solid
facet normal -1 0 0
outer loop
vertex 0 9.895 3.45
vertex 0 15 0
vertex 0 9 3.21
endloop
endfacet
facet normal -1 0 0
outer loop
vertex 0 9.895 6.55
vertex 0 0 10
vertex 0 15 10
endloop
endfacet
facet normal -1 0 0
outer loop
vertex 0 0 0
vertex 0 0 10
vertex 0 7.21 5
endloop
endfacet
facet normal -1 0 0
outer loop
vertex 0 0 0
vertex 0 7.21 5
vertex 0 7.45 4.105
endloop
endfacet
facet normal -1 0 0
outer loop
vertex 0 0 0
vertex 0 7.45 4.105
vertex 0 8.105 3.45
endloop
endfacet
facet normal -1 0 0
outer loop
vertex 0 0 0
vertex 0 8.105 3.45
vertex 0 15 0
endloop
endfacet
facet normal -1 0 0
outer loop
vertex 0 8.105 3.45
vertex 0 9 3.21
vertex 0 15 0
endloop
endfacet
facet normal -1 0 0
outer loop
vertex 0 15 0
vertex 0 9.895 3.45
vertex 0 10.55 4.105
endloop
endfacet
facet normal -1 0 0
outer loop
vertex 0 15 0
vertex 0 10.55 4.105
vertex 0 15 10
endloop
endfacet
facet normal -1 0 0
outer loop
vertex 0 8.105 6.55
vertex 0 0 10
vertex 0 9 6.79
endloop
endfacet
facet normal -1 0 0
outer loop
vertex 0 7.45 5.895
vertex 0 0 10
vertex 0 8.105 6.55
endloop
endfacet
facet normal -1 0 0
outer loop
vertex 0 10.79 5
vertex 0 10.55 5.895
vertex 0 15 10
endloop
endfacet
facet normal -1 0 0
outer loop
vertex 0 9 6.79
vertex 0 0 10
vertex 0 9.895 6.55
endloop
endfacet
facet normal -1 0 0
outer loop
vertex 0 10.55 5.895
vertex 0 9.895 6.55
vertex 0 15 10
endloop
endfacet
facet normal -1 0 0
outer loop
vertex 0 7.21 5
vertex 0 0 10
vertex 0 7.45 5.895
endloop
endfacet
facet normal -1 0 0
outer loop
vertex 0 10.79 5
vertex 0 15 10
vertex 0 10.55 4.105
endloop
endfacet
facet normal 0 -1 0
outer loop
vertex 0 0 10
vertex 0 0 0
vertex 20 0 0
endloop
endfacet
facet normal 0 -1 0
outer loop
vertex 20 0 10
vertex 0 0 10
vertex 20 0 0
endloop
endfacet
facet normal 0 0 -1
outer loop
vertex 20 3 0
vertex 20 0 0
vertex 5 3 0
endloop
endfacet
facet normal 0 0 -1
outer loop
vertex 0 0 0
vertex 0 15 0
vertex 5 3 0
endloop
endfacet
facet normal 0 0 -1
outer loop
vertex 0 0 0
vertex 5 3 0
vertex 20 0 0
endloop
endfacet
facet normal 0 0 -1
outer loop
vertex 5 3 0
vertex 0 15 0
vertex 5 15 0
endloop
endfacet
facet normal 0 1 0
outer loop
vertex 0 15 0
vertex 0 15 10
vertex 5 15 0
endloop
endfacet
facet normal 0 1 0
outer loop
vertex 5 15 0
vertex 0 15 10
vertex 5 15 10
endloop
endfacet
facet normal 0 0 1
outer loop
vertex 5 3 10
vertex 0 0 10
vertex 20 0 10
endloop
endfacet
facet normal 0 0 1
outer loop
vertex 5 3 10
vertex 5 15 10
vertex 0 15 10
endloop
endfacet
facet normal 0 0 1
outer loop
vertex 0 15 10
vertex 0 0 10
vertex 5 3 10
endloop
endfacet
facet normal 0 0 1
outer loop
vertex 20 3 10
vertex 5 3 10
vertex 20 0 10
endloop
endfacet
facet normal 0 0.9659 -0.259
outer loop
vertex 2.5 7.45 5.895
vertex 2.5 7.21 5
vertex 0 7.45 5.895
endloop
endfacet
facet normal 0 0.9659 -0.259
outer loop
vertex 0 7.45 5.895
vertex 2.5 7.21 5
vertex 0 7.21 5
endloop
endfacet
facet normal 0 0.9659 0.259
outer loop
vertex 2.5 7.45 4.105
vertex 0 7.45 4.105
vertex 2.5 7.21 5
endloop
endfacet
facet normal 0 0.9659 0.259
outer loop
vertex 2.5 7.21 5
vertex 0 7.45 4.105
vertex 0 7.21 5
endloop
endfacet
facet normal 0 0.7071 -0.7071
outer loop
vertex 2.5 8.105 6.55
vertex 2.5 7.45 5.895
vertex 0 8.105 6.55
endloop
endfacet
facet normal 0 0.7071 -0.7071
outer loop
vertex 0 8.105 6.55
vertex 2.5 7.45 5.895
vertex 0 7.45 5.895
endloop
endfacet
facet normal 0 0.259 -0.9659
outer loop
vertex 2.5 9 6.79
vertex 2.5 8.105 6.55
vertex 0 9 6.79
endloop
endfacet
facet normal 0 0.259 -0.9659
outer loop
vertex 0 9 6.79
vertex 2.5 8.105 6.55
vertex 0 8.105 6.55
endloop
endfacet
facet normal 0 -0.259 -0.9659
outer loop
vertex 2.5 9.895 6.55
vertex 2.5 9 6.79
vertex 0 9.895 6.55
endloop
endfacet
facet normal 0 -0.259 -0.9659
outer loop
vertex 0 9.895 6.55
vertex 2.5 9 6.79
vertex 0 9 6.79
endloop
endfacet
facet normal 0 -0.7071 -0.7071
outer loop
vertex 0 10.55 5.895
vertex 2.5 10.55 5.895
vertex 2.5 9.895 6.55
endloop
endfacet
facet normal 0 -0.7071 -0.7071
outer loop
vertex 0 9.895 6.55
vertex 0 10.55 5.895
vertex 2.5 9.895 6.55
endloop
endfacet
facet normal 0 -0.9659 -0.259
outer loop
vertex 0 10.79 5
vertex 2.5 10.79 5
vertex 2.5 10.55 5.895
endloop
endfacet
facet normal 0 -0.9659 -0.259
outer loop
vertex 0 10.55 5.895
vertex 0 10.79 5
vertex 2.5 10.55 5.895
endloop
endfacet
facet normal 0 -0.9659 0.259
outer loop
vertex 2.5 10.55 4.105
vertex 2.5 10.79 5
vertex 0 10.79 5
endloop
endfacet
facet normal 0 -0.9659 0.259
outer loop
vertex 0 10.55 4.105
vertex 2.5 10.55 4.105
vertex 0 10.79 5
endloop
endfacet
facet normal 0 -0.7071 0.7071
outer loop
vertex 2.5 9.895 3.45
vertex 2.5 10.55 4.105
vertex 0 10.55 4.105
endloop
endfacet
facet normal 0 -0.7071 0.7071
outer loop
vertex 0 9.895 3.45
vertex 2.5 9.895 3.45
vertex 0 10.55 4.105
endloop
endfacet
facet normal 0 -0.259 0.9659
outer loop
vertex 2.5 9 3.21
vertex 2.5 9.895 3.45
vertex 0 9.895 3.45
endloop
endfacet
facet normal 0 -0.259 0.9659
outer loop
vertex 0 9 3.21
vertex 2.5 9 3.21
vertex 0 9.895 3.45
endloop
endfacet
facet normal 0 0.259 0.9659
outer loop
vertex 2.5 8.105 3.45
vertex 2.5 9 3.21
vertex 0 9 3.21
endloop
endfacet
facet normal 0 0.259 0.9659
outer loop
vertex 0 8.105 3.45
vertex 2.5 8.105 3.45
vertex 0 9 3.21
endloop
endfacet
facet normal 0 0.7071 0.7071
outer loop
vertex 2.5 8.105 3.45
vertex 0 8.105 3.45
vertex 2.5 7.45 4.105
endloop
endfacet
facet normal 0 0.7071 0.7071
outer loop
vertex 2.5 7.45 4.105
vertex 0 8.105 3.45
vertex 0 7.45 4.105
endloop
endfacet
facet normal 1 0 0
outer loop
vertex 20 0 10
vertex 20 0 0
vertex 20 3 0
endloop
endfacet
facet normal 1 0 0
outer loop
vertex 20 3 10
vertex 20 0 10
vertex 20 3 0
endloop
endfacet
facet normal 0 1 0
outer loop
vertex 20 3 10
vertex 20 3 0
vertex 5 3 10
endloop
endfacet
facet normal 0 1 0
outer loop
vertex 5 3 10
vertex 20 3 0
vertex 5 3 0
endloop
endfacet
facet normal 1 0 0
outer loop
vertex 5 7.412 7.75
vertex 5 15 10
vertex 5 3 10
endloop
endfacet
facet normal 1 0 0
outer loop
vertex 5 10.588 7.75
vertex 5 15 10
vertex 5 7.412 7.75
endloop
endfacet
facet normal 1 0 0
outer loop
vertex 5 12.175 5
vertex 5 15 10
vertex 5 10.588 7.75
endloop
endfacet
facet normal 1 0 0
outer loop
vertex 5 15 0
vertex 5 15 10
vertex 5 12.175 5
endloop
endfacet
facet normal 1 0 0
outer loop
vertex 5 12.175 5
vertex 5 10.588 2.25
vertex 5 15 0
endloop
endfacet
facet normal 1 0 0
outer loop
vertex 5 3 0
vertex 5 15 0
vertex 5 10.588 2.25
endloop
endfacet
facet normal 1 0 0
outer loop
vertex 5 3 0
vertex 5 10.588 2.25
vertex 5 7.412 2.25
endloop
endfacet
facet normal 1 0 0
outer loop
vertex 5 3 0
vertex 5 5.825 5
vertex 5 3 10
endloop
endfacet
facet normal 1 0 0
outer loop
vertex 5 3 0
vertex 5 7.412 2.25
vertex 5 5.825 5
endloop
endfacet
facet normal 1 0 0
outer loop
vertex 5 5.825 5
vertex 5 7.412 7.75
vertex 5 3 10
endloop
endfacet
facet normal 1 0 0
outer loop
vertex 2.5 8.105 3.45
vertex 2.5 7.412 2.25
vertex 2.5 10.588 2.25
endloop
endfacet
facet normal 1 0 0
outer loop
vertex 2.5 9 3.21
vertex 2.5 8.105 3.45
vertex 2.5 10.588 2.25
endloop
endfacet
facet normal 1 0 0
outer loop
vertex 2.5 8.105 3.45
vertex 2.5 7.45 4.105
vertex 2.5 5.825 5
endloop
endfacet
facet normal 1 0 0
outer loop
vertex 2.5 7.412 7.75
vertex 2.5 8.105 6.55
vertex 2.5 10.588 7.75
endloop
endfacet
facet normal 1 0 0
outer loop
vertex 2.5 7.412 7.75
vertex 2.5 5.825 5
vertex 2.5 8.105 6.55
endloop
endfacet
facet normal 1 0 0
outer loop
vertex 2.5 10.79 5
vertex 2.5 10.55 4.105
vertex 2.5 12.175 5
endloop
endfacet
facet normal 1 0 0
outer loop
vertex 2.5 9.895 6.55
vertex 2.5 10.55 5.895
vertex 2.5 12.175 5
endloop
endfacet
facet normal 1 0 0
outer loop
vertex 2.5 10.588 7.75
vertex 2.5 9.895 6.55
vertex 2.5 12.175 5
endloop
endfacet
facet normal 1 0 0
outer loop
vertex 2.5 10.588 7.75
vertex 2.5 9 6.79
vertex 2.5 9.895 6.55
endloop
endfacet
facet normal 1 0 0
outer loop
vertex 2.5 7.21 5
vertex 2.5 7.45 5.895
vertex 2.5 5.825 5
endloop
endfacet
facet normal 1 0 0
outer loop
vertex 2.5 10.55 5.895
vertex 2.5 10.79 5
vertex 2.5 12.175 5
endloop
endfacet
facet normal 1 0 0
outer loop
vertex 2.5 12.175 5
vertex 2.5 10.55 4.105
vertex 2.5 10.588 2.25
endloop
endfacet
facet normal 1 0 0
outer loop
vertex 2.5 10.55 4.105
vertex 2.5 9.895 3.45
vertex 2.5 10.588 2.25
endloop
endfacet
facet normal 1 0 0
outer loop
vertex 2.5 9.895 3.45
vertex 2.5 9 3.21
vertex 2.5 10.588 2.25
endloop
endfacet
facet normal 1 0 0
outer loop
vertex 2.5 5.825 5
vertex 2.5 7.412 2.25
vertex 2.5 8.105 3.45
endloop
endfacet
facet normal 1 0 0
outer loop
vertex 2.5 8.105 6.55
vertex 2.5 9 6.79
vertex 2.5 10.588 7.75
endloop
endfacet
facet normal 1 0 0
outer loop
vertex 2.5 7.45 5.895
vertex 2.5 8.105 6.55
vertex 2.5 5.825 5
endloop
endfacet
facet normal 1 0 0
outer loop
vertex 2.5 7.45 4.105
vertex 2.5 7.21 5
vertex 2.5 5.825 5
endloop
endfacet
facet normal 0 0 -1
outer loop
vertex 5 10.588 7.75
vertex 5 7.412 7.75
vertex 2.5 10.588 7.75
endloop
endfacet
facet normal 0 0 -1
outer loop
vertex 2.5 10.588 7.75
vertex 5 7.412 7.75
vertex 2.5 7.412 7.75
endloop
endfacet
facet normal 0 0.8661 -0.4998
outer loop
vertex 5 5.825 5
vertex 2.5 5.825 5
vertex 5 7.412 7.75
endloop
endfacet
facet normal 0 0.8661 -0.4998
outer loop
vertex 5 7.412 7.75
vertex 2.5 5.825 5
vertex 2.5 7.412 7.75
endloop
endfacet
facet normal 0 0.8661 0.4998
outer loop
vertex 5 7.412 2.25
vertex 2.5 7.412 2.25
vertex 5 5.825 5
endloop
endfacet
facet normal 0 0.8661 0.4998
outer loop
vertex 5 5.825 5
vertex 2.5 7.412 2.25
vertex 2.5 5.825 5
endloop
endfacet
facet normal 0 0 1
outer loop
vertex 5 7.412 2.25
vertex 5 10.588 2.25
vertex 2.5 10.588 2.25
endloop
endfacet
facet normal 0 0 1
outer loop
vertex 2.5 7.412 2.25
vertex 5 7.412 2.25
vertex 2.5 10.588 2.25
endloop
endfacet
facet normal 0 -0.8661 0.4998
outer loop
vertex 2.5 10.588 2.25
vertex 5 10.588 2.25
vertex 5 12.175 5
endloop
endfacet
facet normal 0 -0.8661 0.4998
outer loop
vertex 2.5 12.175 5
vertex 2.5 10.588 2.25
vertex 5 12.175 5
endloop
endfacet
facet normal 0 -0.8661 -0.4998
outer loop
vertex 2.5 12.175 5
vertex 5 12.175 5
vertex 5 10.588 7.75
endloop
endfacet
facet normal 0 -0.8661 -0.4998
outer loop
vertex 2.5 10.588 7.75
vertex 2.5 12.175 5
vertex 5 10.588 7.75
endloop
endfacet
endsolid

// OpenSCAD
module endstop_flag() {

	difference () {
		cube(size = [20,15,10], center = false);
		translate(v = [5,3,-5]) cube(20,15,20);
		translate ([-1,9,5]) rotate([0,90,0]) cylinder(h=20, r=3.1/2/cos(30),$fn = 12);
		translate ([2.5,9,5]) rotate(a=[90,0,90]) cylinder(h=20, r=5.5/2/cos(30),$fn = 6);
	}
}

endstop_flag();
